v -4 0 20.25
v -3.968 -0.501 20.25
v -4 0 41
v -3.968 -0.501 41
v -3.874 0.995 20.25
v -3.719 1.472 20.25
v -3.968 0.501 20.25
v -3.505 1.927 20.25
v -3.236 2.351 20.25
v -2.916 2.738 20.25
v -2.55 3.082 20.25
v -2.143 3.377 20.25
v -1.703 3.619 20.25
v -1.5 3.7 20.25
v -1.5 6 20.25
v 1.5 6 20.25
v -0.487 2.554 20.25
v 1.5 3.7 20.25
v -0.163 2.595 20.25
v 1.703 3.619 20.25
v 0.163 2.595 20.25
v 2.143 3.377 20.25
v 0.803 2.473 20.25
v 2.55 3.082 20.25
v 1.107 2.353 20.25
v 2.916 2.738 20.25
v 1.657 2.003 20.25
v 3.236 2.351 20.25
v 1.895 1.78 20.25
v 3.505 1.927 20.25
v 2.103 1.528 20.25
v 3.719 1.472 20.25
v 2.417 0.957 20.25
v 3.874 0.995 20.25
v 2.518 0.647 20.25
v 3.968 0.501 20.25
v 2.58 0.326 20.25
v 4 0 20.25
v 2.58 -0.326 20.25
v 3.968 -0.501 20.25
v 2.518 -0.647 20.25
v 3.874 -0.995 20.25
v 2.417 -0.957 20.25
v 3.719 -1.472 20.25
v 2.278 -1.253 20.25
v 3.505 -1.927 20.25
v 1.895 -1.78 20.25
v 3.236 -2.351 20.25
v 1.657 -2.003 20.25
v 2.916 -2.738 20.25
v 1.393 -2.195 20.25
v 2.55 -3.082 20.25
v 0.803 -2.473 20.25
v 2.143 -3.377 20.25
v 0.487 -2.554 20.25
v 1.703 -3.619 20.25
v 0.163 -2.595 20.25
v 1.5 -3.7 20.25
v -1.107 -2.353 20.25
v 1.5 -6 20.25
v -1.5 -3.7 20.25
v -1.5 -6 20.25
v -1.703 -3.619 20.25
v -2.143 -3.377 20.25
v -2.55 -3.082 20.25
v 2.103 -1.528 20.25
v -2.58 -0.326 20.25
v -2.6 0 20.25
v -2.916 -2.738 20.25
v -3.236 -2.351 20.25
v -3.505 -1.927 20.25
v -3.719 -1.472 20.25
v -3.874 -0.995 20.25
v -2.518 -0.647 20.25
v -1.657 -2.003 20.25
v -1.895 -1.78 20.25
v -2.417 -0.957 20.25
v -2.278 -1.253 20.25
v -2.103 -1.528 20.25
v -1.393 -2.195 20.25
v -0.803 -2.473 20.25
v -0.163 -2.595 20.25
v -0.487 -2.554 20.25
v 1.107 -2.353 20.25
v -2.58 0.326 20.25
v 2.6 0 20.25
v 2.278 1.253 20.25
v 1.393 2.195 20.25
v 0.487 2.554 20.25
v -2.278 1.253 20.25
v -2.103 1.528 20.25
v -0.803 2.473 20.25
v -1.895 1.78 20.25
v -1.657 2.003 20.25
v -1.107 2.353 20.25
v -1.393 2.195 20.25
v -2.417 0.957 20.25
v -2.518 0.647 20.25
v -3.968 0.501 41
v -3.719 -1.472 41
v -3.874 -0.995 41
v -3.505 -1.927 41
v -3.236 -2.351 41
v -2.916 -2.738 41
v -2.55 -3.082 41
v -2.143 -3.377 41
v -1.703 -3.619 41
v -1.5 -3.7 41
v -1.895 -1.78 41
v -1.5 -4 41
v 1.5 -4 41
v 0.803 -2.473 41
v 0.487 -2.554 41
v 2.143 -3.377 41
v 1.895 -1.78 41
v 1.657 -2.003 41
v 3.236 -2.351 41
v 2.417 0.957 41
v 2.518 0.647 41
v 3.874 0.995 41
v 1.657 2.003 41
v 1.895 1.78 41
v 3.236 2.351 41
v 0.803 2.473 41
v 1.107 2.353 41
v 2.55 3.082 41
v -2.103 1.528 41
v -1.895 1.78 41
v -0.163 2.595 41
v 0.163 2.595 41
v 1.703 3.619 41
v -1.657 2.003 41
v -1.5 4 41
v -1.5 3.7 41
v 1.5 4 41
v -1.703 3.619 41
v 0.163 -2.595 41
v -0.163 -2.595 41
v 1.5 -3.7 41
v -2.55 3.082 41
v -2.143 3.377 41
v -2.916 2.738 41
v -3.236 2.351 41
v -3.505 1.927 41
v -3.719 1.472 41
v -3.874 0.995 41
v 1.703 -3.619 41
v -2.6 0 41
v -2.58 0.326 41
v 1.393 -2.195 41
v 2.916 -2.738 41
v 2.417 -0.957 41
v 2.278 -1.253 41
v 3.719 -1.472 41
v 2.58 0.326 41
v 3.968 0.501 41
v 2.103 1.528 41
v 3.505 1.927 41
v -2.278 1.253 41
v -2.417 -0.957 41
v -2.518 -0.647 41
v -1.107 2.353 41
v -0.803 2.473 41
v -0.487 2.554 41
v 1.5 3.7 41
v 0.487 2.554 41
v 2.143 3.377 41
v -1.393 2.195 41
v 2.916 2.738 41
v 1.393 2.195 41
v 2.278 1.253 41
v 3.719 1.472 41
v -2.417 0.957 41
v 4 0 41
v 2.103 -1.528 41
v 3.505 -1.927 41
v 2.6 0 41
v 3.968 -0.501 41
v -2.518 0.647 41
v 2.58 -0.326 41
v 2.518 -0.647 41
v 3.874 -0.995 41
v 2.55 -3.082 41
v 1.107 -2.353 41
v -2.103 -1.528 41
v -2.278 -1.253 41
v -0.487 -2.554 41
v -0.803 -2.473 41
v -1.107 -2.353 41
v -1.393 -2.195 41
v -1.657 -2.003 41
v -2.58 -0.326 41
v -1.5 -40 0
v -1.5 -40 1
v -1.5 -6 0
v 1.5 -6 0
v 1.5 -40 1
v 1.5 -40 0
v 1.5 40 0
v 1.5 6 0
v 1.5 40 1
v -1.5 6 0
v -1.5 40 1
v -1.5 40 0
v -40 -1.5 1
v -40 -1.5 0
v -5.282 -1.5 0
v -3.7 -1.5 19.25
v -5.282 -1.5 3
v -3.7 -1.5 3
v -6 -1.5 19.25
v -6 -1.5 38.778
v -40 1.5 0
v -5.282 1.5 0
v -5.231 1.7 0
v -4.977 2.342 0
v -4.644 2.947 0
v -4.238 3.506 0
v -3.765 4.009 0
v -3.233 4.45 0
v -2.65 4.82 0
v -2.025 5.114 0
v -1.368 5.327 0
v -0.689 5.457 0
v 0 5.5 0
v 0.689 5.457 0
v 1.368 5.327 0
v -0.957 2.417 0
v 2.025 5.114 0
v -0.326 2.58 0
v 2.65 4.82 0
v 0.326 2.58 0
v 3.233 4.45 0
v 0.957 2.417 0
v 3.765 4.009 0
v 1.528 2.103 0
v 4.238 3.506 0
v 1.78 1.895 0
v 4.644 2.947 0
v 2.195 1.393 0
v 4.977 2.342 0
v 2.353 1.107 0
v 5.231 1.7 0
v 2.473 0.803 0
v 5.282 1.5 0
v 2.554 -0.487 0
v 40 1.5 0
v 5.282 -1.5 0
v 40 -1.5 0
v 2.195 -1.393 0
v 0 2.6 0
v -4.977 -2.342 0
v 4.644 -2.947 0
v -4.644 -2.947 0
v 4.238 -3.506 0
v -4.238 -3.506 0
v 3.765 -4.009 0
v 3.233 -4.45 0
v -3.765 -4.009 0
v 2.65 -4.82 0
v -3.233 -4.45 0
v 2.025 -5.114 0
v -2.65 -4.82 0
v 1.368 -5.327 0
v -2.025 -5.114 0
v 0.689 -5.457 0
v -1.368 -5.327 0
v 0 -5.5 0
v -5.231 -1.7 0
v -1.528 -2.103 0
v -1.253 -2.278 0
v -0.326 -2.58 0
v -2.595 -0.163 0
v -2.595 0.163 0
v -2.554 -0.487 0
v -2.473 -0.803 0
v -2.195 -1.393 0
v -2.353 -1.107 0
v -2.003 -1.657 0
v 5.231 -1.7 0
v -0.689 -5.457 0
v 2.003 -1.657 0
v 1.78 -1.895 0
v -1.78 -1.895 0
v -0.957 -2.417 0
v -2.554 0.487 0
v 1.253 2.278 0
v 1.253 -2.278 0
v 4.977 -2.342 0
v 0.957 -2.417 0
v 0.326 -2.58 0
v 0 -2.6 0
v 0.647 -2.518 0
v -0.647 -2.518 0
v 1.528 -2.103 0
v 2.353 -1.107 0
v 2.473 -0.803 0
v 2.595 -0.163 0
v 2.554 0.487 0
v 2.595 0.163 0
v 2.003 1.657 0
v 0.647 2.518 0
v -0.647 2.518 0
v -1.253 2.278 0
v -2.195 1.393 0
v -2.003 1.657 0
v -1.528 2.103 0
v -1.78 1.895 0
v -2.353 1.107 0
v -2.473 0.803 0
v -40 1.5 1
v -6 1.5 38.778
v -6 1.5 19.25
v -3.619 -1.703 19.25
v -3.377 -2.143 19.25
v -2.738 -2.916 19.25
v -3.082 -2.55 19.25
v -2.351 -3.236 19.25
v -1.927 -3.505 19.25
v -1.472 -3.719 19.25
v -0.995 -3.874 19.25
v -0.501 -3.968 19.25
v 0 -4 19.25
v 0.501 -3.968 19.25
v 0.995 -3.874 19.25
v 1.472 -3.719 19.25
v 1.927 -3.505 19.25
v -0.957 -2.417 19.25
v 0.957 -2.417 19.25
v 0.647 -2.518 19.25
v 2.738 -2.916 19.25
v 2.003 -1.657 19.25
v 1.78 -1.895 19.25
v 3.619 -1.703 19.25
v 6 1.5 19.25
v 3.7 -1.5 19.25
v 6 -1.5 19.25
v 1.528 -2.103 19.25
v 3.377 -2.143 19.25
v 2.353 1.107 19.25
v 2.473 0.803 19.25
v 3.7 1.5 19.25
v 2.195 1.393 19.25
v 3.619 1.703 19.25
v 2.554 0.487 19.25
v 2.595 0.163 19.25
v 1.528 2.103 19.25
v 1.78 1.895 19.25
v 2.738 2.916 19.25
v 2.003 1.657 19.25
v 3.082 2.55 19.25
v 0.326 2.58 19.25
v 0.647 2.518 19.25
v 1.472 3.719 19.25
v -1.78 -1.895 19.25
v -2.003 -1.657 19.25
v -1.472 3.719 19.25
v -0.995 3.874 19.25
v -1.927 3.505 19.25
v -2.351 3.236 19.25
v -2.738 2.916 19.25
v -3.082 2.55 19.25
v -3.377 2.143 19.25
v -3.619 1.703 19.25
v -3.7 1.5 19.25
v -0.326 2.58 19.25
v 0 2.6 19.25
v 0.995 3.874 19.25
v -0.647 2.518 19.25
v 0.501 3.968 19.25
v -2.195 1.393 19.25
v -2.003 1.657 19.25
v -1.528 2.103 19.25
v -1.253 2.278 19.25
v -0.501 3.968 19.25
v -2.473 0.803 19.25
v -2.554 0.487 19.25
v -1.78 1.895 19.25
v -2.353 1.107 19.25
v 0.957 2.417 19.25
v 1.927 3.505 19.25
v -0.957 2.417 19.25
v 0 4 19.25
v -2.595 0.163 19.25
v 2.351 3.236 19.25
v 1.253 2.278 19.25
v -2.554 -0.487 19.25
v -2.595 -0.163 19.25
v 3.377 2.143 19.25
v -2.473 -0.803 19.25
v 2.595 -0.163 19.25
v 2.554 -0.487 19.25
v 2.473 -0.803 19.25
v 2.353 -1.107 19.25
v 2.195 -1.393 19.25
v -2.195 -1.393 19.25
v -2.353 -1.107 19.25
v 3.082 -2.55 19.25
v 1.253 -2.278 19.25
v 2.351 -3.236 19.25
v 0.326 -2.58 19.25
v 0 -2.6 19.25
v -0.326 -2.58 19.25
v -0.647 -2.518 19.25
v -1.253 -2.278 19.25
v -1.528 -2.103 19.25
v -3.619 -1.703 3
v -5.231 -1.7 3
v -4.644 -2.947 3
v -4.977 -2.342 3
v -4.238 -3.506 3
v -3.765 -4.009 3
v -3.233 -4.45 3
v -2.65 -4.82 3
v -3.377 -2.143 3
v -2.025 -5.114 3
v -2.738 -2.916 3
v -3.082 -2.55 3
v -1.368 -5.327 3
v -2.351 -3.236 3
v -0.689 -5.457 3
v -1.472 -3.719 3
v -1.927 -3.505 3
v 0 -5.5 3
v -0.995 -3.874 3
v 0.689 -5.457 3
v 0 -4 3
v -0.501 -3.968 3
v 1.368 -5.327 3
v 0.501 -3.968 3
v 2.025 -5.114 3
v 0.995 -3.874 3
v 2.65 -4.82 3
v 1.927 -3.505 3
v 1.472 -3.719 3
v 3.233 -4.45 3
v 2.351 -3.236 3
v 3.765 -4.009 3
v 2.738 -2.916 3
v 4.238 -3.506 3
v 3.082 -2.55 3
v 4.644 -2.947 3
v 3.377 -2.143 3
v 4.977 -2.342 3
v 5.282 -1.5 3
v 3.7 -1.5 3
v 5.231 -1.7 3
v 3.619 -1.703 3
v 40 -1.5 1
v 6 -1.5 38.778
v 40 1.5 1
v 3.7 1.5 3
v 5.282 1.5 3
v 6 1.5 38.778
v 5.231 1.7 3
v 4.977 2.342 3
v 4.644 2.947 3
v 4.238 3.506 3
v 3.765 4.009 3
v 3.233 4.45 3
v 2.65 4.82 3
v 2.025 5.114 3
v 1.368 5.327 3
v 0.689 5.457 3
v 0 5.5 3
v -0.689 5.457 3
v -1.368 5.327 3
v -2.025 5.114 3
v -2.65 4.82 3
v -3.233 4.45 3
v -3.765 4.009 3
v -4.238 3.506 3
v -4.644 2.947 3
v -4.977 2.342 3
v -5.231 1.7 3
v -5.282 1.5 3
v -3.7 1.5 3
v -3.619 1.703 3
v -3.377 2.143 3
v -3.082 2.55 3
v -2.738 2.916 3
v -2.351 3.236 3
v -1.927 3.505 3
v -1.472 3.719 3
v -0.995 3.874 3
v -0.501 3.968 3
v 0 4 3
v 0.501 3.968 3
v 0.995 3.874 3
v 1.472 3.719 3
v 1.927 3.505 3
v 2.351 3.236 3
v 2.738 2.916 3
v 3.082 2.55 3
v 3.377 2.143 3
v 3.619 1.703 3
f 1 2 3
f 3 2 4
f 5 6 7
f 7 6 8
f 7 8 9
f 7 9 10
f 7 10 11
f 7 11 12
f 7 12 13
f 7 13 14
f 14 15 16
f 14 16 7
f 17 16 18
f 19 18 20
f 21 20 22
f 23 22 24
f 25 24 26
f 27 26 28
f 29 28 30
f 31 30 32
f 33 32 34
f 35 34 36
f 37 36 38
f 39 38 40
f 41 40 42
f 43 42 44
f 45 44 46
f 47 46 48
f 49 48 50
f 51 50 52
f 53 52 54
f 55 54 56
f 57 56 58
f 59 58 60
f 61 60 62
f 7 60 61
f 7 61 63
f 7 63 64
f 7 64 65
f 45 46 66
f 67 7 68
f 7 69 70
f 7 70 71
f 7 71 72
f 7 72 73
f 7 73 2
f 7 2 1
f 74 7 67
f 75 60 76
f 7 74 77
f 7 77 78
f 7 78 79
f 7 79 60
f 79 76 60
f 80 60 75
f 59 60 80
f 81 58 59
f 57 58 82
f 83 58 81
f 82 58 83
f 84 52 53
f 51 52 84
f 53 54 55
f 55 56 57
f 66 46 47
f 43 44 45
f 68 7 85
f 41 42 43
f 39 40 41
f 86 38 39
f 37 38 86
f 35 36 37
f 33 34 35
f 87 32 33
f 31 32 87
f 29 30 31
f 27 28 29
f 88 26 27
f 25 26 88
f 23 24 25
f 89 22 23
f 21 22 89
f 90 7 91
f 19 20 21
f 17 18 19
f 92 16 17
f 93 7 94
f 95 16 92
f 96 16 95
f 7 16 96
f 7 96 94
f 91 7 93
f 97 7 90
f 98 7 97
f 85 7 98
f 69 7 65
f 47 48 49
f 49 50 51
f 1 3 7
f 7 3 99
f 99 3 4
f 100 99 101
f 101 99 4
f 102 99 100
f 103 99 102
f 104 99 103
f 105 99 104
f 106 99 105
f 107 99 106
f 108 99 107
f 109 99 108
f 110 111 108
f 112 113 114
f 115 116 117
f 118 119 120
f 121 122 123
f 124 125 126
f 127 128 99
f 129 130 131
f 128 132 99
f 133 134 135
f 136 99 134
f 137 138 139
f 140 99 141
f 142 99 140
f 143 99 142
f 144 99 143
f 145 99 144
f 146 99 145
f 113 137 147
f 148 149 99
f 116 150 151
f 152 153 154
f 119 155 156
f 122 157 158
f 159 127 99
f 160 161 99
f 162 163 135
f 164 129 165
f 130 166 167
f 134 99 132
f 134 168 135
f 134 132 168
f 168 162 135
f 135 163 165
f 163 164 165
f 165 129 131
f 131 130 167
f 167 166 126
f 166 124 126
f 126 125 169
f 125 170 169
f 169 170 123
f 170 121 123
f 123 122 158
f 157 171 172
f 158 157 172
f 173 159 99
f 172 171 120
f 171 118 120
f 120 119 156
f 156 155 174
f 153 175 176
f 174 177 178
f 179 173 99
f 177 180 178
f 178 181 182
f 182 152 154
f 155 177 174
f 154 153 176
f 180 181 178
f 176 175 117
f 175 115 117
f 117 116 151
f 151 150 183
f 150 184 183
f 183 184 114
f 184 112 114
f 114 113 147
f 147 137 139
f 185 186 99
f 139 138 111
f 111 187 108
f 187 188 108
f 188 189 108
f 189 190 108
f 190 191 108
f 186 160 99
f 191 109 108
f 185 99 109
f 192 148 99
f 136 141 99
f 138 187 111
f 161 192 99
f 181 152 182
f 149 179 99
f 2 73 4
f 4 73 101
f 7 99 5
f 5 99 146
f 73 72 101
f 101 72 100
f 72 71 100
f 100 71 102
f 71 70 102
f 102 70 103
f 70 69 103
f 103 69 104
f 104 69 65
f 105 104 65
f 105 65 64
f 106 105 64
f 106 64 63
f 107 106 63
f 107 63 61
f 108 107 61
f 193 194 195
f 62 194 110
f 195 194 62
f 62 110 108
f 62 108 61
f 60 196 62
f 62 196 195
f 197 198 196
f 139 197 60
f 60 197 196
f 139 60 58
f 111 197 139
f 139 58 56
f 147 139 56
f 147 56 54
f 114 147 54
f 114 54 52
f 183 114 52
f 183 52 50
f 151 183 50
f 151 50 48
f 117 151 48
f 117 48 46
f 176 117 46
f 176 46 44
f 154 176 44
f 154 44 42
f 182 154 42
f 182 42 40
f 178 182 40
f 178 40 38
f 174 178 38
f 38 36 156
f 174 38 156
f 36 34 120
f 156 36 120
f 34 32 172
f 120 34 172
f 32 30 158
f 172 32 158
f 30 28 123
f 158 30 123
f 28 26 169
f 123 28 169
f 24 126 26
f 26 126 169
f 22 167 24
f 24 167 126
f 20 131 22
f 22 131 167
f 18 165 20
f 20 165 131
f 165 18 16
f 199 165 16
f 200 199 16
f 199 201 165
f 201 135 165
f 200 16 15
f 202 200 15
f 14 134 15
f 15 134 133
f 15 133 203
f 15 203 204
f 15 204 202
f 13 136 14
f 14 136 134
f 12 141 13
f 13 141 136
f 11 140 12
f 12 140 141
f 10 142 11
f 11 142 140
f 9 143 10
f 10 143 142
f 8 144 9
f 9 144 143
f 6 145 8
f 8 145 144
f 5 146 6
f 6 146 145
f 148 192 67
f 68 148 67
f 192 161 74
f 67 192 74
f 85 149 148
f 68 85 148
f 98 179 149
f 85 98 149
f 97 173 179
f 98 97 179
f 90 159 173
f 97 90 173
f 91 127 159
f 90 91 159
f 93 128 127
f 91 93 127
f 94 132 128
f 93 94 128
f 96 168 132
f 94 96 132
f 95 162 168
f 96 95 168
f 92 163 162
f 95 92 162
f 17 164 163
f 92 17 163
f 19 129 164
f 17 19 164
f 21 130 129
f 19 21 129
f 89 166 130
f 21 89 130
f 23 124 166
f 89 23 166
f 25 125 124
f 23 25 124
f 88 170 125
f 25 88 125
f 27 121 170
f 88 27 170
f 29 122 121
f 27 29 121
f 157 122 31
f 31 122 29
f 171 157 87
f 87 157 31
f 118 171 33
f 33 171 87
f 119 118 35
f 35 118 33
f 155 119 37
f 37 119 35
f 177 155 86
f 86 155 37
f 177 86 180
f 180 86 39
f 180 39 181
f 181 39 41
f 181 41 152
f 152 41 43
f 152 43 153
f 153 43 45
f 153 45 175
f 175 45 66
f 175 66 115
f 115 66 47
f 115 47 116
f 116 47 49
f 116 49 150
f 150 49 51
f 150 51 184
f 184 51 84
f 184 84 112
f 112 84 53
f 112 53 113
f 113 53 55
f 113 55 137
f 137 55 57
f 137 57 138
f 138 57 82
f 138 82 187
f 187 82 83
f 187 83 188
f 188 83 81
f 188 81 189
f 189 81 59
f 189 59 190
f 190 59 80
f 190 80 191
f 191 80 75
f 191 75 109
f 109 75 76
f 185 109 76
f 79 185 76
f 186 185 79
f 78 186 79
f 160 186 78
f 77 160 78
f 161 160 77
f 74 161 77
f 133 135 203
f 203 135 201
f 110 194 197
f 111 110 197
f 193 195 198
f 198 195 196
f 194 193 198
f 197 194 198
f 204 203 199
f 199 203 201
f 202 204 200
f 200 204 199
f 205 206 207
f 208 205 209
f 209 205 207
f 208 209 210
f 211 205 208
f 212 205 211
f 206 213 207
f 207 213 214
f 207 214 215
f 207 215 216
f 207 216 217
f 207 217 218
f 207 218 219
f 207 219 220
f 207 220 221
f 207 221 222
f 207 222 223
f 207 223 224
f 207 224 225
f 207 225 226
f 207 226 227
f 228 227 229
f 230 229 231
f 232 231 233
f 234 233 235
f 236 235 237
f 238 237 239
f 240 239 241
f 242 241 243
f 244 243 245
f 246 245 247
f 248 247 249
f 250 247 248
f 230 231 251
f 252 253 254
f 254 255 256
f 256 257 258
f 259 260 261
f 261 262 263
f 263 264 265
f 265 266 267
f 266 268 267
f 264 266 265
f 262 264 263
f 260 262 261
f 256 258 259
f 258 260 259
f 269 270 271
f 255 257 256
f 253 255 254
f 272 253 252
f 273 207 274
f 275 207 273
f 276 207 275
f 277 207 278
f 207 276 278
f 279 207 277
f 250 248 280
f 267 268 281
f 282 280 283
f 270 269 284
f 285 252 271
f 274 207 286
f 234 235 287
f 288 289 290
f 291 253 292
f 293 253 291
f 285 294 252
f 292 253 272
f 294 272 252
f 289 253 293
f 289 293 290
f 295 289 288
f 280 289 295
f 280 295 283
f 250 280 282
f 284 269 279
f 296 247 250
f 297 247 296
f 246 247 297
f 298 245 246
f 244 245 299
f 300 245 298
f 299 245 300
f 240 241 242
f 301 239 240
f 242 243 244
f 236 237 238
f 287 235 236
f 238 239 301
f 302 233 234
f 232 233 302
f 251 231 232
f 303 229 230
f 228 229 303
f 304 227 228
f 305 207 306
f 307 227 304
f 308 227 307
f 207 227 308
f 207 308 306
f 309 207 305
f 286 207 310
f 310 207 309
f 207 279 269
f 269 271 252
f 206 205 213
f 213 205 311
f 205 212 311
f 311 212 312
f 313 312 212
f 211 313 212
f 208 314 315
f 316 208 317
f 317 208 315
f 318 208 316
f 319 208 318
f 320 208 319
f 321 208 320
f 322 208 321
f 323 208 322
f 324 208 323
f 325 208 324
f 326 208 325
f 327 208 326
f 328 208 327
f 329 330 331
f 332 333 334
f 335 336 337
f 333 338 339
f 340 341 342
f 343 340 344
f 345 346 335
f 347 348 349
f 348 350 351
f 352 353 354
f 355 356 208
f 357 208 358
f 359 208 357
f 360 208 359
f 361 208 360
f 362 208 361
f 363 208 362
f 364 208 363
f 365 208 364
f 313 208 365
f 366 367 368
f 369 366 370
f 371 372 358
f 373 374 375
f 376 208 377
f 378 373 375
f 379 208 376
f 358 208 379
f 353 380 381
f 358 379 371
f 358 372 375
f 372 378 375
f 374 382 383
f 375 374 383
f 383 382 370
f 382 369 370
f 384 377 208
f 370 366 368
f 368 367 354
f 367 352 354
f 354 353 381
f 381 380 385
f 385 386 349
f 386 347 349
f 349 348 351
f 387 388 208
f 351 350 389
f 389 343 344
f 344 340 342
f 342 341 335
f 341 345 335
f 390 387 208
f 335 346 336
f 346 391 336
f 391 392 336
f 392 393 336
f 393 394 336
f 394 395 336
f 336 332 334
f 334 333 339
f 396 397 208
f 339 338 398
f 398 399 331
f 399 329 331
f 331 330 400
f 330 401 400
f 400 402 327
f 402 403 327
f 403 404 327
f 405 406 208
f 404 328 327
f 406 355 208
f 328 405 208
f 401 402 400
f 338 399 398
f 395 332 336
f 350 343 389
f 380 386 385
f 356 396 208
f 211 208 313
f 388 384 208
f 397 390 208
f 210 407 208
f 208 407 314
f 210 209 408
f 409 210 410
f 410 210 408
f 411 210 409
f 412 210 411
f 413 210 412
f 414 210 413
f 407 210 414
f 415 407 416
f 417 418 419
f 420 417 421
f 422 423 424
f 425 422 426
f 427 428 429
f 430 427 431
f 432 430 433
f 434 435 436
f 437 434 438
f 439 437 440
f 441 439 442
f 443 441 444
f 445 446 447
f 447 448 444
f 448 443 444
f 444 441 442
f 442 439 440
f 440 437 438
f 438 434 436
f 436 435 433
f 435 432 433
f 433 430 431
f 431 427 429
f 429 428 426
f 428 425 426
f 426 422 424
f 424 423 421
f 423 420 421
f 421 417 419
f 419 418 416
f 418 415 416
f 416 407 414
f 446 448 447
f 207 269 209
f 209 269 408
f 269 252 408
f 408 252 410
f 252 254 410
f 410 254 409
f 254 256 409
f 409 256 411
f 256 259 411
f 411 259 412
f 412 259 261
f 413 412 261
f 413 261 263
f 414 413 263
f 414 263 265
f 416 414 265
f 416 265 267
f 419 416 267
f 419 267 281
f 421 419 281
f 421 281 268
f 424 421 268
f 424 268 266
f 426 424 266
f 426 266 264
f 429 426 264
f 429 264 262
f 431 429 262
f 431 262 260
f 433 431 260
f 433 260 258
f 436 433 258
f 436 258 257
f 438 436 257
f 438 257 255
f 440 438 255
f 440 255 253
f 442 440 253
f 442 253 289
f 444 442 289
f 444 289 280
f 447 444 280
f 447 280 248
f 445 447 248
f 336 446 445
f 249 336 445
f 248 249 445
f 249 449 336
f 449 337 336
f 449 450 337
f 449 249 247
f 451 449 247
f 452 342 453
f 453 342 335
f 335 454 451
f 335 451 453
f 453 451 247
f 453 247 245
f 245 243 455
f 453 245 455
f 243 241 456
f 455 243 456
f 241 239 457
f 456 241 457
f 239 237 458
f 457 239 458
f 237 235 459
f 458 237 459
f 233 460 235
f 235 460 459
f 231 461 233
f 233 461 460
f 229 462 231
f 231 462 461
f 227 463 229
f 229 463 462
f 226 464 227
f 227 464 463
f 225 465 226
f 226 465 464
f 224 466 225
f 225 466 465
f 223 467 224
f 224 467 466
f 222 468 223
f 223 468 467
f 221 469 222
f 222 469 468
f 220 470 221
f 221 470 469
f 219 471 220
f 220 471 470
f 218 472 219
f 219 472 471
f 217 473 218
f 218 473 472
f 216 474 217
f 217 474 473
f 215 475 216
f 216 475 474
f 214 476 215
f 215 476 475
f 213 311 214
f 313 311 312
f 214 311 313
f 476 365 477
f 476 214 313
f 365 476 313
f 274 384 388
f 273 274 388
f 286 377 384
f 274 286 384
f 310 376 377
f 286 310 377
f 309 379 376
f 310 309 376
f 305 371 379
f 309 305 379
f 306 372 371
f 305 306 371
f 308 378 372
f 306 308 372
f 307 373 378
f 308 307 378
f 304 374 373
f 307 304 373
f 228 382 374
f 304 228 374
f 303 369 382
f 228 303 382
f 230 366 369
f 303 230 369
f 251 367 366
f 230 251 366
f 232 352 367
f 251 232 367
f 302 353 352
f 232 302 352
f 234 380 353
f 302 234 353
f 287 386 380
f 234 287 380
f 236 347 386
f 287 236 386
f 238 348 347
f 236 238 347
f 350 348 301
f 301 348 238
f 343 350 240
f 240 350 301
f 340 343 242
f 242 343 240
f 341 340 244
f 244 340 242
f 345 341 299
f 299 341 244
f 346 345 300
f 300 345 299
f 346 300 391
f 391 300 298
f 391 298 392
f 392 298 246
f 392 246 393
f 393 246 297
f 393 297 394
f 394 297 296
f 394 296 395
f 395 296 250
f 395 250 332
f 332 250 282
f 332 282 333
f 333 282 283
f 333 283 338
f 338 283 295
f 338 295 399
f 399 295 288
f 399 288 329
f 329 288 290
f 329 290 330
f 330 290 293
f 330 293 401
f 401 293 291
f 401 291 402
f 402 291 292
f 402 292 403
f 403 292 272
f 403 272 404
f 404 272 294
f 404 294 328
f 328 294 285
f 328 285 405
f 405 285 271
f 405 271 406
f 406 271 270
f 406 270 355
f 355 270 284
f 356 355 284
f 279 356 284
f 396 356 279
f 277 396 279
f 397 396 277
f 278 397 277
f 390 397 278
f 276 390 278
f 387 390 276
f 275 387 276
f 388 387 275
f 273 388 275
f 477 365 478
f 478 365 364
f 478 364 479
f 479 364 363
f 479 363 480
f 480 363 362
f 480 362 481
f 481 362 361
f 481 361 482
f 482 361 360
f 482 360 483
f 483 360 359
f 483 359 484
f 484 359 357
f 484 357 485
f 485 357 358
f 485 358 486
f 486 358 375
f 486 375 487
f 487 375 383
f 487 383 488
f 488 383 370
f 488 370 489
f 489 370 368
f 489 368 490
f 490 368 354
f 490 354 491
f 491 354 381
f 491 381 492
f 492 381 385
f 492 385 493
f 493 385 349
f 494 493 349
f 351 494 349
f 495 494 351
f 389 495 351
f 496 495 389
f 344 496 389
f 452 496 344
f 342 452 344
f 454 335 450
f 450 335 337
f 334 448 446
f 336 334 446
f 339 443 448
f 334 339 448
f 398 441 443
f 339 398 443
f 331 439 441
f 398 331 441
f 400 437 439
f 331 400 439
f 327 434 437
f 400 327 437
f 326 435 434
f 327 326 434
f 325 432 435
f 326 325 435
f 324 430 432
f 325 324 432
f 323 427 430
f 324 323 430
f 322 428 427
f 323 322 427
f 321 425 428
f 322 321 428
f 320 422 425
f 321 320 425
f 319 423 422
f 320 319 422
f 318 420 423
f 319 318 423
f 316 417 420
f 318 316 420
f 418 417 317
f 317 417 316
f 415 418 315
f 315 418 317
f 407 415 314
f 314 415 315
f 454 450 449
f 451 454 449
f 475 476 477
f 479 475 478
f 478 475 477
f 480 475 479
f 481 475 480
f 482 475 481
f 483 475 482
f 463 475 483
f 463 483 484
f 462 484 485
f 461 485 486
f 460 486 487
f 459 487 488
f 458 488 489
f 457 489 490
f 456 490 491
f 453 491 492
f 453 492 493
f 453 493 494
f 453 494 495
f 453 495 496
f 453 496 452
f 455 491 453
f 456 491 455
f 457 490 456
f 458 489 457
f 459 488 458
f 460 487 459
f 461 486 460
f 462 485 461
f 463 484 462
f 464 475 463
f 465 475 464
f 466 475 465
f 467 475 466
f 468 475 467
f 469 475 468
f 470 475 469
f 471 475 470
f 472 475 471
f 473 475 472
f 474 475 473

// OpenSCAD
$fn=50;

module trg(){
hull(){
translate([-1.5,-4,40])cube([3,8,1]);
translate([-1.5,-40,0])cube([3,80,1]);
}
}

one();
rotate([0,0,90])two();

module one(){

difference(){
	union(){
	cylinder(r=4,h=41);
	trg();
	}
	cylinder(r=2.6,h=41);

cube([12,12,40.5],center=true);
}

}



module two(){

difference(){
	union(){
	cylinder(r=4,h=41);
	trg();
	cylinder(d=11,h=3);
	}
	cylinder(r=2.6,h=41);

translate([0,0,39.5])cube([12,12,40.5],center=true);
}


}
